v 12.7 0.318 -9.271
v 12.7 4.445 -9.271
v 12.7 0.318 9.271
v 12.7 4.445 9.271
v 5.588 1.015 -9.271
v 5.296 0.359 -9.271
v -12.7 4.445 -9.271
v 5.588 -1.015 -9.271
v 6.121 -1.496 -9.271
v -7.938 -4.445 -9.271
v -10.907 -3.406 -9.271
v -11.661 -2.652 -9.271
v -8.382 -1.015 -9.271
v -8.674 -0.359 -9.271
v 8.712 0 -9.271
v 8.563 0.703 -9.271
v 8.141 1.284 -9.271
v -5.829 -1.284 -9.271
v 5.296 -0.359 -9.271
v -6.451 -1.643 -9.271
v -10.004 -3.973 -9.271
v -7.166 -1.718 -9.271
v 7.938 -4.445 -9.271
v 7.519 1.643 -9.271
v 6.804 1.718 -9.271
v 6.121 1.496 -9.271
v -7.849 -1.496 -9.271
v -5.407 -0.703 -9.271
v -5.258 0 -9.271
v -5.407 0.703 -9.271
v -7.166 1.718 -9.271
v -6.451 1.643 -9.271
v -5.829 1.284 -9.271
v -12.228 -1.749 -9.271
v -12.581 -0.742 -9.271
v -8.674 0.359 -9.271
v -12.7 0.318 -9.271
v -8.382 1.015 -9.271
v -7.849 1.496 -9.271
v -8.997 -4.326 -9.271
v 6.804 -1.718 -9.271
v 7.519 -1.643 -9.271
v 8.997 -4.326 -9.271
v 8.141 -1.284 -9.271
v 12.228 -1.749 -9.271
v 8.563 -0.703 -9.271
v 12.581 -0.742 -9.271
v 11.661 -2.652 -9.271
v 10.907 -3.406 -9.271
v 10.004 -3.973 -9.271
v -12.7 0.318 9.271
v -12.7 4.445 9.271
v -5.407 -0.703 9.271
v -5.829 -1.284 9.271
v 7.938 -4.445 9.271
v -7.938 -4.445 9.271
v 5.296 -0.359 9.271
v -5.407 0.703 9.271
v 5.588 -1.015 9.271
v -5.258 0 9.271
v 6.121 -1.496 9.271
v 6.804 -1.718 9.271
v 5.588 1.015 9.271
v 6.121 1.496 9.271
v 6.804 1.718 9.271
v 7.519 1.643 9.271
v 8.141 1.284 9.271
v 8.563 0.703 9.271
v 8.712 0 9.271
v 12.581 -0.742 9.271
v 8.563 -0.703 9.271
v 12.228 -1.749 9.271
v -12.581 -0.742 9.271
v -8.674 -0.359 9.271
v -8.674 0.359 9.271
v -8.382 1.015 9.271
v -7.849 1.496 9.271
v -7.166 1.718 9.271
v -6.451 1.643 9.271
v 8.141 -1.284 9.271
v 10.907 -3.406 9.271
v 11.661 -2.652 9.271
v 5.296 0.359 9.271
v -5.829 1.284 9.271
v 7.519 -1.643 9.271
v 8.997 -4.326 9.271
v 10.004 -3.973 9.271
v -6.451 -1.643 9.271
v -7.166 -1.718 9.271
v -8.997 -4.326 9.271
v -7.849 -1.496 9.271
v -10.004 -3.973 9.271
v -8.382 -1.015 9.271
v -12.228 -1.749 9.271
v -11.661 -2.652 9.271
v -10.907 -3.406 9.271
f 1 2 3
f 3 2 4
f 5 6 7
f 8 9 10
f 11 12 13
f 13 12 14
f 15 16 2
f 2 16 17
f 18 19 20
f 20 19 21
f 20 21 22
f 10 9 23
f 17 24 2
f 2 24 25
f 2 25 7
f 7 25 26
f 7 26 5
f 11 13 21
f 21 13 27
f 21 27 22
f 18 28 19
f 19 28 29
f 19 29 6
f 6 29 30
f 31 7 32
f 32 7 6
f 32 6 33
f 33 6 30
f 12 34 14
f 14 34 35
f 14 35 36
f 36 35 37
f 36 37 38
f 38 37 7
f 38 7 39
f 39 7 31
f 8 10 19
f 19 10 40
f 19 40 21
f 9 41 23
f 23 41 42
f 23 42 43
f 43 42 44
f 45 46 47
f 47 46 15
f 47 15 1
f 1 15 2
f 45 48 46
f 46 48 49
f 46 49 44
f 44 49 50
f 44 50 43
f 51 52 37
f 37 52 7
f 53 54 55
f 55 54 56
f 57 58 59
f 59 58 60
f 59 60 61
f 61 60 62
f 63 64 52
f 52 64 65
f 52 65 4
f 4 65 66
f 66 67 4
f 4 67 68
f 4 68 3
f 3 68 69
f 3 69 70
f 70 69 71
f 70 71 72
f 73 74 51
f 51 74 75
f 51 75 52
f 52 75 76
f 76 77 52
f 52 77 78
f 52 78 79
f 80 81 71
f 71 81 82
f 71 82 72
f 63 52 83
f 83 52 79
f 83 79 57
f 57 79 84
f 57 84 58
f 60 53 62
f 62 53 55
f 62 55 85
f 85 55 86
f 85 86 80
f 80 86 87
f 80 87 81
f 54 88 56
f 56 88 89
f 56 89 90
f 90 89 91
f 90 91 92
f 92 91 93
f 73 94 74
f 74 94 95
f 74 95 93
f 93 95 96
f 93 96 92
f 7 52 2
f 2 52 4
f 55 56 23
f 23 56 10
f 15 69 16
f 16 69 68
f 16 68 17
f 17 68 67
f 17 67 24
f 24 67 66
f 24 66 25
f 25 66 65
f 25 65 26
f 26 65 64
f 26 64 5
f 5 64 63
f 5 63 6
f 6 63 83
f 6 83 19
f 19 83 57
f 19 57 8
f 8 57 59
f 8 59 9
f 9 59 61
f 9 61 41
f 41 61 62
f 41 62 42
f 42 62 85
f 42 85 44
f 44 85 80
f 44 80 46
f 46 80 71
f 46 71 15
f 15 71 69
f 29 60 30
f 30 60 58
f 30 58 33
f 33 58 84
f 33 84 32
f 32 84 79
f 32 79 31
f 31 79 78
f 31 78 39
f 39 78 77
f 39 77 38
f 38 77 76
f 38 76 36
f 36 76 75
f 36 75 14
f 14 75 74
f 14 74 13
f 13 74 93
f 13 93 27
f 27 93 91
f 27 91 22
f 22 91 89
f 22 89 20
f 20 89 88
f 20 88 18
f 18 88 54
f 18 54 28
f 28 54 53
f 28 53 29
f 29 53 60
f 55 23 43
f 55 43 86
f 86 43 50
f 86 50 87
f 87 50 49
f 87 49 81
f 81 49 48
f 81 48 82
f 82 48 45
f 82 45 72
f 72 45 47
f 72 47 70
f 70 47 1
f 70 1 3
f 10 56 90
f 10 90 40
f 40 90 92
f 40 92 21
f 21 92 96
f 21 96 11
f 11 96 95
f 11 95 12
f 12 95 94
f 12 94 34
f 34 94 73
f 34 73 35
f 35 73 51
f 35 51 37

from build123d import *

# Parameters (mm, degrees)
SKETCH1_W                 = 25.4
SKETCH1_H                 = 18.542
BOSS_EXTRUDE1_DEPTH       = 4.445
TAP_DRILL_FOR_8_32_TAP1_D = 3.4544
FILLET1_R                 = 4.7625


with BuildPart() as part:
    # Sketch1 → Boss-Extrude1 (new, symmetric)
    with BuildSketch(Plane(origin=(0, 0, 0), x_dir=(1, 0, 0), z_dir=(0, 1, 0))):
        Rectangle(SKETCH1_W, SKETCH1_H)
    extrude(amount=BOSS_EXTRUDE1_DEPTH, both=True)

    # Tap Drill for #8-32 Tap1 (through all)
    with Locations(Plane.XY.offset(9.271)):
        with Locations((-6.985, 0), (6.985, 0)):
            Hole(TAP_DRILL_FOR_8_32_TAP1_D / 2)

    # Fillet1
    fillet1_edges = [part.edges().sort_by_distance(p)[0] for p in [
        (-12.7, -4.445, 0),
        (12.7, -4.445, 0),
    ]]
    fillet(fillet1_edges, radius=FILLET1_R)


solid = part.part
